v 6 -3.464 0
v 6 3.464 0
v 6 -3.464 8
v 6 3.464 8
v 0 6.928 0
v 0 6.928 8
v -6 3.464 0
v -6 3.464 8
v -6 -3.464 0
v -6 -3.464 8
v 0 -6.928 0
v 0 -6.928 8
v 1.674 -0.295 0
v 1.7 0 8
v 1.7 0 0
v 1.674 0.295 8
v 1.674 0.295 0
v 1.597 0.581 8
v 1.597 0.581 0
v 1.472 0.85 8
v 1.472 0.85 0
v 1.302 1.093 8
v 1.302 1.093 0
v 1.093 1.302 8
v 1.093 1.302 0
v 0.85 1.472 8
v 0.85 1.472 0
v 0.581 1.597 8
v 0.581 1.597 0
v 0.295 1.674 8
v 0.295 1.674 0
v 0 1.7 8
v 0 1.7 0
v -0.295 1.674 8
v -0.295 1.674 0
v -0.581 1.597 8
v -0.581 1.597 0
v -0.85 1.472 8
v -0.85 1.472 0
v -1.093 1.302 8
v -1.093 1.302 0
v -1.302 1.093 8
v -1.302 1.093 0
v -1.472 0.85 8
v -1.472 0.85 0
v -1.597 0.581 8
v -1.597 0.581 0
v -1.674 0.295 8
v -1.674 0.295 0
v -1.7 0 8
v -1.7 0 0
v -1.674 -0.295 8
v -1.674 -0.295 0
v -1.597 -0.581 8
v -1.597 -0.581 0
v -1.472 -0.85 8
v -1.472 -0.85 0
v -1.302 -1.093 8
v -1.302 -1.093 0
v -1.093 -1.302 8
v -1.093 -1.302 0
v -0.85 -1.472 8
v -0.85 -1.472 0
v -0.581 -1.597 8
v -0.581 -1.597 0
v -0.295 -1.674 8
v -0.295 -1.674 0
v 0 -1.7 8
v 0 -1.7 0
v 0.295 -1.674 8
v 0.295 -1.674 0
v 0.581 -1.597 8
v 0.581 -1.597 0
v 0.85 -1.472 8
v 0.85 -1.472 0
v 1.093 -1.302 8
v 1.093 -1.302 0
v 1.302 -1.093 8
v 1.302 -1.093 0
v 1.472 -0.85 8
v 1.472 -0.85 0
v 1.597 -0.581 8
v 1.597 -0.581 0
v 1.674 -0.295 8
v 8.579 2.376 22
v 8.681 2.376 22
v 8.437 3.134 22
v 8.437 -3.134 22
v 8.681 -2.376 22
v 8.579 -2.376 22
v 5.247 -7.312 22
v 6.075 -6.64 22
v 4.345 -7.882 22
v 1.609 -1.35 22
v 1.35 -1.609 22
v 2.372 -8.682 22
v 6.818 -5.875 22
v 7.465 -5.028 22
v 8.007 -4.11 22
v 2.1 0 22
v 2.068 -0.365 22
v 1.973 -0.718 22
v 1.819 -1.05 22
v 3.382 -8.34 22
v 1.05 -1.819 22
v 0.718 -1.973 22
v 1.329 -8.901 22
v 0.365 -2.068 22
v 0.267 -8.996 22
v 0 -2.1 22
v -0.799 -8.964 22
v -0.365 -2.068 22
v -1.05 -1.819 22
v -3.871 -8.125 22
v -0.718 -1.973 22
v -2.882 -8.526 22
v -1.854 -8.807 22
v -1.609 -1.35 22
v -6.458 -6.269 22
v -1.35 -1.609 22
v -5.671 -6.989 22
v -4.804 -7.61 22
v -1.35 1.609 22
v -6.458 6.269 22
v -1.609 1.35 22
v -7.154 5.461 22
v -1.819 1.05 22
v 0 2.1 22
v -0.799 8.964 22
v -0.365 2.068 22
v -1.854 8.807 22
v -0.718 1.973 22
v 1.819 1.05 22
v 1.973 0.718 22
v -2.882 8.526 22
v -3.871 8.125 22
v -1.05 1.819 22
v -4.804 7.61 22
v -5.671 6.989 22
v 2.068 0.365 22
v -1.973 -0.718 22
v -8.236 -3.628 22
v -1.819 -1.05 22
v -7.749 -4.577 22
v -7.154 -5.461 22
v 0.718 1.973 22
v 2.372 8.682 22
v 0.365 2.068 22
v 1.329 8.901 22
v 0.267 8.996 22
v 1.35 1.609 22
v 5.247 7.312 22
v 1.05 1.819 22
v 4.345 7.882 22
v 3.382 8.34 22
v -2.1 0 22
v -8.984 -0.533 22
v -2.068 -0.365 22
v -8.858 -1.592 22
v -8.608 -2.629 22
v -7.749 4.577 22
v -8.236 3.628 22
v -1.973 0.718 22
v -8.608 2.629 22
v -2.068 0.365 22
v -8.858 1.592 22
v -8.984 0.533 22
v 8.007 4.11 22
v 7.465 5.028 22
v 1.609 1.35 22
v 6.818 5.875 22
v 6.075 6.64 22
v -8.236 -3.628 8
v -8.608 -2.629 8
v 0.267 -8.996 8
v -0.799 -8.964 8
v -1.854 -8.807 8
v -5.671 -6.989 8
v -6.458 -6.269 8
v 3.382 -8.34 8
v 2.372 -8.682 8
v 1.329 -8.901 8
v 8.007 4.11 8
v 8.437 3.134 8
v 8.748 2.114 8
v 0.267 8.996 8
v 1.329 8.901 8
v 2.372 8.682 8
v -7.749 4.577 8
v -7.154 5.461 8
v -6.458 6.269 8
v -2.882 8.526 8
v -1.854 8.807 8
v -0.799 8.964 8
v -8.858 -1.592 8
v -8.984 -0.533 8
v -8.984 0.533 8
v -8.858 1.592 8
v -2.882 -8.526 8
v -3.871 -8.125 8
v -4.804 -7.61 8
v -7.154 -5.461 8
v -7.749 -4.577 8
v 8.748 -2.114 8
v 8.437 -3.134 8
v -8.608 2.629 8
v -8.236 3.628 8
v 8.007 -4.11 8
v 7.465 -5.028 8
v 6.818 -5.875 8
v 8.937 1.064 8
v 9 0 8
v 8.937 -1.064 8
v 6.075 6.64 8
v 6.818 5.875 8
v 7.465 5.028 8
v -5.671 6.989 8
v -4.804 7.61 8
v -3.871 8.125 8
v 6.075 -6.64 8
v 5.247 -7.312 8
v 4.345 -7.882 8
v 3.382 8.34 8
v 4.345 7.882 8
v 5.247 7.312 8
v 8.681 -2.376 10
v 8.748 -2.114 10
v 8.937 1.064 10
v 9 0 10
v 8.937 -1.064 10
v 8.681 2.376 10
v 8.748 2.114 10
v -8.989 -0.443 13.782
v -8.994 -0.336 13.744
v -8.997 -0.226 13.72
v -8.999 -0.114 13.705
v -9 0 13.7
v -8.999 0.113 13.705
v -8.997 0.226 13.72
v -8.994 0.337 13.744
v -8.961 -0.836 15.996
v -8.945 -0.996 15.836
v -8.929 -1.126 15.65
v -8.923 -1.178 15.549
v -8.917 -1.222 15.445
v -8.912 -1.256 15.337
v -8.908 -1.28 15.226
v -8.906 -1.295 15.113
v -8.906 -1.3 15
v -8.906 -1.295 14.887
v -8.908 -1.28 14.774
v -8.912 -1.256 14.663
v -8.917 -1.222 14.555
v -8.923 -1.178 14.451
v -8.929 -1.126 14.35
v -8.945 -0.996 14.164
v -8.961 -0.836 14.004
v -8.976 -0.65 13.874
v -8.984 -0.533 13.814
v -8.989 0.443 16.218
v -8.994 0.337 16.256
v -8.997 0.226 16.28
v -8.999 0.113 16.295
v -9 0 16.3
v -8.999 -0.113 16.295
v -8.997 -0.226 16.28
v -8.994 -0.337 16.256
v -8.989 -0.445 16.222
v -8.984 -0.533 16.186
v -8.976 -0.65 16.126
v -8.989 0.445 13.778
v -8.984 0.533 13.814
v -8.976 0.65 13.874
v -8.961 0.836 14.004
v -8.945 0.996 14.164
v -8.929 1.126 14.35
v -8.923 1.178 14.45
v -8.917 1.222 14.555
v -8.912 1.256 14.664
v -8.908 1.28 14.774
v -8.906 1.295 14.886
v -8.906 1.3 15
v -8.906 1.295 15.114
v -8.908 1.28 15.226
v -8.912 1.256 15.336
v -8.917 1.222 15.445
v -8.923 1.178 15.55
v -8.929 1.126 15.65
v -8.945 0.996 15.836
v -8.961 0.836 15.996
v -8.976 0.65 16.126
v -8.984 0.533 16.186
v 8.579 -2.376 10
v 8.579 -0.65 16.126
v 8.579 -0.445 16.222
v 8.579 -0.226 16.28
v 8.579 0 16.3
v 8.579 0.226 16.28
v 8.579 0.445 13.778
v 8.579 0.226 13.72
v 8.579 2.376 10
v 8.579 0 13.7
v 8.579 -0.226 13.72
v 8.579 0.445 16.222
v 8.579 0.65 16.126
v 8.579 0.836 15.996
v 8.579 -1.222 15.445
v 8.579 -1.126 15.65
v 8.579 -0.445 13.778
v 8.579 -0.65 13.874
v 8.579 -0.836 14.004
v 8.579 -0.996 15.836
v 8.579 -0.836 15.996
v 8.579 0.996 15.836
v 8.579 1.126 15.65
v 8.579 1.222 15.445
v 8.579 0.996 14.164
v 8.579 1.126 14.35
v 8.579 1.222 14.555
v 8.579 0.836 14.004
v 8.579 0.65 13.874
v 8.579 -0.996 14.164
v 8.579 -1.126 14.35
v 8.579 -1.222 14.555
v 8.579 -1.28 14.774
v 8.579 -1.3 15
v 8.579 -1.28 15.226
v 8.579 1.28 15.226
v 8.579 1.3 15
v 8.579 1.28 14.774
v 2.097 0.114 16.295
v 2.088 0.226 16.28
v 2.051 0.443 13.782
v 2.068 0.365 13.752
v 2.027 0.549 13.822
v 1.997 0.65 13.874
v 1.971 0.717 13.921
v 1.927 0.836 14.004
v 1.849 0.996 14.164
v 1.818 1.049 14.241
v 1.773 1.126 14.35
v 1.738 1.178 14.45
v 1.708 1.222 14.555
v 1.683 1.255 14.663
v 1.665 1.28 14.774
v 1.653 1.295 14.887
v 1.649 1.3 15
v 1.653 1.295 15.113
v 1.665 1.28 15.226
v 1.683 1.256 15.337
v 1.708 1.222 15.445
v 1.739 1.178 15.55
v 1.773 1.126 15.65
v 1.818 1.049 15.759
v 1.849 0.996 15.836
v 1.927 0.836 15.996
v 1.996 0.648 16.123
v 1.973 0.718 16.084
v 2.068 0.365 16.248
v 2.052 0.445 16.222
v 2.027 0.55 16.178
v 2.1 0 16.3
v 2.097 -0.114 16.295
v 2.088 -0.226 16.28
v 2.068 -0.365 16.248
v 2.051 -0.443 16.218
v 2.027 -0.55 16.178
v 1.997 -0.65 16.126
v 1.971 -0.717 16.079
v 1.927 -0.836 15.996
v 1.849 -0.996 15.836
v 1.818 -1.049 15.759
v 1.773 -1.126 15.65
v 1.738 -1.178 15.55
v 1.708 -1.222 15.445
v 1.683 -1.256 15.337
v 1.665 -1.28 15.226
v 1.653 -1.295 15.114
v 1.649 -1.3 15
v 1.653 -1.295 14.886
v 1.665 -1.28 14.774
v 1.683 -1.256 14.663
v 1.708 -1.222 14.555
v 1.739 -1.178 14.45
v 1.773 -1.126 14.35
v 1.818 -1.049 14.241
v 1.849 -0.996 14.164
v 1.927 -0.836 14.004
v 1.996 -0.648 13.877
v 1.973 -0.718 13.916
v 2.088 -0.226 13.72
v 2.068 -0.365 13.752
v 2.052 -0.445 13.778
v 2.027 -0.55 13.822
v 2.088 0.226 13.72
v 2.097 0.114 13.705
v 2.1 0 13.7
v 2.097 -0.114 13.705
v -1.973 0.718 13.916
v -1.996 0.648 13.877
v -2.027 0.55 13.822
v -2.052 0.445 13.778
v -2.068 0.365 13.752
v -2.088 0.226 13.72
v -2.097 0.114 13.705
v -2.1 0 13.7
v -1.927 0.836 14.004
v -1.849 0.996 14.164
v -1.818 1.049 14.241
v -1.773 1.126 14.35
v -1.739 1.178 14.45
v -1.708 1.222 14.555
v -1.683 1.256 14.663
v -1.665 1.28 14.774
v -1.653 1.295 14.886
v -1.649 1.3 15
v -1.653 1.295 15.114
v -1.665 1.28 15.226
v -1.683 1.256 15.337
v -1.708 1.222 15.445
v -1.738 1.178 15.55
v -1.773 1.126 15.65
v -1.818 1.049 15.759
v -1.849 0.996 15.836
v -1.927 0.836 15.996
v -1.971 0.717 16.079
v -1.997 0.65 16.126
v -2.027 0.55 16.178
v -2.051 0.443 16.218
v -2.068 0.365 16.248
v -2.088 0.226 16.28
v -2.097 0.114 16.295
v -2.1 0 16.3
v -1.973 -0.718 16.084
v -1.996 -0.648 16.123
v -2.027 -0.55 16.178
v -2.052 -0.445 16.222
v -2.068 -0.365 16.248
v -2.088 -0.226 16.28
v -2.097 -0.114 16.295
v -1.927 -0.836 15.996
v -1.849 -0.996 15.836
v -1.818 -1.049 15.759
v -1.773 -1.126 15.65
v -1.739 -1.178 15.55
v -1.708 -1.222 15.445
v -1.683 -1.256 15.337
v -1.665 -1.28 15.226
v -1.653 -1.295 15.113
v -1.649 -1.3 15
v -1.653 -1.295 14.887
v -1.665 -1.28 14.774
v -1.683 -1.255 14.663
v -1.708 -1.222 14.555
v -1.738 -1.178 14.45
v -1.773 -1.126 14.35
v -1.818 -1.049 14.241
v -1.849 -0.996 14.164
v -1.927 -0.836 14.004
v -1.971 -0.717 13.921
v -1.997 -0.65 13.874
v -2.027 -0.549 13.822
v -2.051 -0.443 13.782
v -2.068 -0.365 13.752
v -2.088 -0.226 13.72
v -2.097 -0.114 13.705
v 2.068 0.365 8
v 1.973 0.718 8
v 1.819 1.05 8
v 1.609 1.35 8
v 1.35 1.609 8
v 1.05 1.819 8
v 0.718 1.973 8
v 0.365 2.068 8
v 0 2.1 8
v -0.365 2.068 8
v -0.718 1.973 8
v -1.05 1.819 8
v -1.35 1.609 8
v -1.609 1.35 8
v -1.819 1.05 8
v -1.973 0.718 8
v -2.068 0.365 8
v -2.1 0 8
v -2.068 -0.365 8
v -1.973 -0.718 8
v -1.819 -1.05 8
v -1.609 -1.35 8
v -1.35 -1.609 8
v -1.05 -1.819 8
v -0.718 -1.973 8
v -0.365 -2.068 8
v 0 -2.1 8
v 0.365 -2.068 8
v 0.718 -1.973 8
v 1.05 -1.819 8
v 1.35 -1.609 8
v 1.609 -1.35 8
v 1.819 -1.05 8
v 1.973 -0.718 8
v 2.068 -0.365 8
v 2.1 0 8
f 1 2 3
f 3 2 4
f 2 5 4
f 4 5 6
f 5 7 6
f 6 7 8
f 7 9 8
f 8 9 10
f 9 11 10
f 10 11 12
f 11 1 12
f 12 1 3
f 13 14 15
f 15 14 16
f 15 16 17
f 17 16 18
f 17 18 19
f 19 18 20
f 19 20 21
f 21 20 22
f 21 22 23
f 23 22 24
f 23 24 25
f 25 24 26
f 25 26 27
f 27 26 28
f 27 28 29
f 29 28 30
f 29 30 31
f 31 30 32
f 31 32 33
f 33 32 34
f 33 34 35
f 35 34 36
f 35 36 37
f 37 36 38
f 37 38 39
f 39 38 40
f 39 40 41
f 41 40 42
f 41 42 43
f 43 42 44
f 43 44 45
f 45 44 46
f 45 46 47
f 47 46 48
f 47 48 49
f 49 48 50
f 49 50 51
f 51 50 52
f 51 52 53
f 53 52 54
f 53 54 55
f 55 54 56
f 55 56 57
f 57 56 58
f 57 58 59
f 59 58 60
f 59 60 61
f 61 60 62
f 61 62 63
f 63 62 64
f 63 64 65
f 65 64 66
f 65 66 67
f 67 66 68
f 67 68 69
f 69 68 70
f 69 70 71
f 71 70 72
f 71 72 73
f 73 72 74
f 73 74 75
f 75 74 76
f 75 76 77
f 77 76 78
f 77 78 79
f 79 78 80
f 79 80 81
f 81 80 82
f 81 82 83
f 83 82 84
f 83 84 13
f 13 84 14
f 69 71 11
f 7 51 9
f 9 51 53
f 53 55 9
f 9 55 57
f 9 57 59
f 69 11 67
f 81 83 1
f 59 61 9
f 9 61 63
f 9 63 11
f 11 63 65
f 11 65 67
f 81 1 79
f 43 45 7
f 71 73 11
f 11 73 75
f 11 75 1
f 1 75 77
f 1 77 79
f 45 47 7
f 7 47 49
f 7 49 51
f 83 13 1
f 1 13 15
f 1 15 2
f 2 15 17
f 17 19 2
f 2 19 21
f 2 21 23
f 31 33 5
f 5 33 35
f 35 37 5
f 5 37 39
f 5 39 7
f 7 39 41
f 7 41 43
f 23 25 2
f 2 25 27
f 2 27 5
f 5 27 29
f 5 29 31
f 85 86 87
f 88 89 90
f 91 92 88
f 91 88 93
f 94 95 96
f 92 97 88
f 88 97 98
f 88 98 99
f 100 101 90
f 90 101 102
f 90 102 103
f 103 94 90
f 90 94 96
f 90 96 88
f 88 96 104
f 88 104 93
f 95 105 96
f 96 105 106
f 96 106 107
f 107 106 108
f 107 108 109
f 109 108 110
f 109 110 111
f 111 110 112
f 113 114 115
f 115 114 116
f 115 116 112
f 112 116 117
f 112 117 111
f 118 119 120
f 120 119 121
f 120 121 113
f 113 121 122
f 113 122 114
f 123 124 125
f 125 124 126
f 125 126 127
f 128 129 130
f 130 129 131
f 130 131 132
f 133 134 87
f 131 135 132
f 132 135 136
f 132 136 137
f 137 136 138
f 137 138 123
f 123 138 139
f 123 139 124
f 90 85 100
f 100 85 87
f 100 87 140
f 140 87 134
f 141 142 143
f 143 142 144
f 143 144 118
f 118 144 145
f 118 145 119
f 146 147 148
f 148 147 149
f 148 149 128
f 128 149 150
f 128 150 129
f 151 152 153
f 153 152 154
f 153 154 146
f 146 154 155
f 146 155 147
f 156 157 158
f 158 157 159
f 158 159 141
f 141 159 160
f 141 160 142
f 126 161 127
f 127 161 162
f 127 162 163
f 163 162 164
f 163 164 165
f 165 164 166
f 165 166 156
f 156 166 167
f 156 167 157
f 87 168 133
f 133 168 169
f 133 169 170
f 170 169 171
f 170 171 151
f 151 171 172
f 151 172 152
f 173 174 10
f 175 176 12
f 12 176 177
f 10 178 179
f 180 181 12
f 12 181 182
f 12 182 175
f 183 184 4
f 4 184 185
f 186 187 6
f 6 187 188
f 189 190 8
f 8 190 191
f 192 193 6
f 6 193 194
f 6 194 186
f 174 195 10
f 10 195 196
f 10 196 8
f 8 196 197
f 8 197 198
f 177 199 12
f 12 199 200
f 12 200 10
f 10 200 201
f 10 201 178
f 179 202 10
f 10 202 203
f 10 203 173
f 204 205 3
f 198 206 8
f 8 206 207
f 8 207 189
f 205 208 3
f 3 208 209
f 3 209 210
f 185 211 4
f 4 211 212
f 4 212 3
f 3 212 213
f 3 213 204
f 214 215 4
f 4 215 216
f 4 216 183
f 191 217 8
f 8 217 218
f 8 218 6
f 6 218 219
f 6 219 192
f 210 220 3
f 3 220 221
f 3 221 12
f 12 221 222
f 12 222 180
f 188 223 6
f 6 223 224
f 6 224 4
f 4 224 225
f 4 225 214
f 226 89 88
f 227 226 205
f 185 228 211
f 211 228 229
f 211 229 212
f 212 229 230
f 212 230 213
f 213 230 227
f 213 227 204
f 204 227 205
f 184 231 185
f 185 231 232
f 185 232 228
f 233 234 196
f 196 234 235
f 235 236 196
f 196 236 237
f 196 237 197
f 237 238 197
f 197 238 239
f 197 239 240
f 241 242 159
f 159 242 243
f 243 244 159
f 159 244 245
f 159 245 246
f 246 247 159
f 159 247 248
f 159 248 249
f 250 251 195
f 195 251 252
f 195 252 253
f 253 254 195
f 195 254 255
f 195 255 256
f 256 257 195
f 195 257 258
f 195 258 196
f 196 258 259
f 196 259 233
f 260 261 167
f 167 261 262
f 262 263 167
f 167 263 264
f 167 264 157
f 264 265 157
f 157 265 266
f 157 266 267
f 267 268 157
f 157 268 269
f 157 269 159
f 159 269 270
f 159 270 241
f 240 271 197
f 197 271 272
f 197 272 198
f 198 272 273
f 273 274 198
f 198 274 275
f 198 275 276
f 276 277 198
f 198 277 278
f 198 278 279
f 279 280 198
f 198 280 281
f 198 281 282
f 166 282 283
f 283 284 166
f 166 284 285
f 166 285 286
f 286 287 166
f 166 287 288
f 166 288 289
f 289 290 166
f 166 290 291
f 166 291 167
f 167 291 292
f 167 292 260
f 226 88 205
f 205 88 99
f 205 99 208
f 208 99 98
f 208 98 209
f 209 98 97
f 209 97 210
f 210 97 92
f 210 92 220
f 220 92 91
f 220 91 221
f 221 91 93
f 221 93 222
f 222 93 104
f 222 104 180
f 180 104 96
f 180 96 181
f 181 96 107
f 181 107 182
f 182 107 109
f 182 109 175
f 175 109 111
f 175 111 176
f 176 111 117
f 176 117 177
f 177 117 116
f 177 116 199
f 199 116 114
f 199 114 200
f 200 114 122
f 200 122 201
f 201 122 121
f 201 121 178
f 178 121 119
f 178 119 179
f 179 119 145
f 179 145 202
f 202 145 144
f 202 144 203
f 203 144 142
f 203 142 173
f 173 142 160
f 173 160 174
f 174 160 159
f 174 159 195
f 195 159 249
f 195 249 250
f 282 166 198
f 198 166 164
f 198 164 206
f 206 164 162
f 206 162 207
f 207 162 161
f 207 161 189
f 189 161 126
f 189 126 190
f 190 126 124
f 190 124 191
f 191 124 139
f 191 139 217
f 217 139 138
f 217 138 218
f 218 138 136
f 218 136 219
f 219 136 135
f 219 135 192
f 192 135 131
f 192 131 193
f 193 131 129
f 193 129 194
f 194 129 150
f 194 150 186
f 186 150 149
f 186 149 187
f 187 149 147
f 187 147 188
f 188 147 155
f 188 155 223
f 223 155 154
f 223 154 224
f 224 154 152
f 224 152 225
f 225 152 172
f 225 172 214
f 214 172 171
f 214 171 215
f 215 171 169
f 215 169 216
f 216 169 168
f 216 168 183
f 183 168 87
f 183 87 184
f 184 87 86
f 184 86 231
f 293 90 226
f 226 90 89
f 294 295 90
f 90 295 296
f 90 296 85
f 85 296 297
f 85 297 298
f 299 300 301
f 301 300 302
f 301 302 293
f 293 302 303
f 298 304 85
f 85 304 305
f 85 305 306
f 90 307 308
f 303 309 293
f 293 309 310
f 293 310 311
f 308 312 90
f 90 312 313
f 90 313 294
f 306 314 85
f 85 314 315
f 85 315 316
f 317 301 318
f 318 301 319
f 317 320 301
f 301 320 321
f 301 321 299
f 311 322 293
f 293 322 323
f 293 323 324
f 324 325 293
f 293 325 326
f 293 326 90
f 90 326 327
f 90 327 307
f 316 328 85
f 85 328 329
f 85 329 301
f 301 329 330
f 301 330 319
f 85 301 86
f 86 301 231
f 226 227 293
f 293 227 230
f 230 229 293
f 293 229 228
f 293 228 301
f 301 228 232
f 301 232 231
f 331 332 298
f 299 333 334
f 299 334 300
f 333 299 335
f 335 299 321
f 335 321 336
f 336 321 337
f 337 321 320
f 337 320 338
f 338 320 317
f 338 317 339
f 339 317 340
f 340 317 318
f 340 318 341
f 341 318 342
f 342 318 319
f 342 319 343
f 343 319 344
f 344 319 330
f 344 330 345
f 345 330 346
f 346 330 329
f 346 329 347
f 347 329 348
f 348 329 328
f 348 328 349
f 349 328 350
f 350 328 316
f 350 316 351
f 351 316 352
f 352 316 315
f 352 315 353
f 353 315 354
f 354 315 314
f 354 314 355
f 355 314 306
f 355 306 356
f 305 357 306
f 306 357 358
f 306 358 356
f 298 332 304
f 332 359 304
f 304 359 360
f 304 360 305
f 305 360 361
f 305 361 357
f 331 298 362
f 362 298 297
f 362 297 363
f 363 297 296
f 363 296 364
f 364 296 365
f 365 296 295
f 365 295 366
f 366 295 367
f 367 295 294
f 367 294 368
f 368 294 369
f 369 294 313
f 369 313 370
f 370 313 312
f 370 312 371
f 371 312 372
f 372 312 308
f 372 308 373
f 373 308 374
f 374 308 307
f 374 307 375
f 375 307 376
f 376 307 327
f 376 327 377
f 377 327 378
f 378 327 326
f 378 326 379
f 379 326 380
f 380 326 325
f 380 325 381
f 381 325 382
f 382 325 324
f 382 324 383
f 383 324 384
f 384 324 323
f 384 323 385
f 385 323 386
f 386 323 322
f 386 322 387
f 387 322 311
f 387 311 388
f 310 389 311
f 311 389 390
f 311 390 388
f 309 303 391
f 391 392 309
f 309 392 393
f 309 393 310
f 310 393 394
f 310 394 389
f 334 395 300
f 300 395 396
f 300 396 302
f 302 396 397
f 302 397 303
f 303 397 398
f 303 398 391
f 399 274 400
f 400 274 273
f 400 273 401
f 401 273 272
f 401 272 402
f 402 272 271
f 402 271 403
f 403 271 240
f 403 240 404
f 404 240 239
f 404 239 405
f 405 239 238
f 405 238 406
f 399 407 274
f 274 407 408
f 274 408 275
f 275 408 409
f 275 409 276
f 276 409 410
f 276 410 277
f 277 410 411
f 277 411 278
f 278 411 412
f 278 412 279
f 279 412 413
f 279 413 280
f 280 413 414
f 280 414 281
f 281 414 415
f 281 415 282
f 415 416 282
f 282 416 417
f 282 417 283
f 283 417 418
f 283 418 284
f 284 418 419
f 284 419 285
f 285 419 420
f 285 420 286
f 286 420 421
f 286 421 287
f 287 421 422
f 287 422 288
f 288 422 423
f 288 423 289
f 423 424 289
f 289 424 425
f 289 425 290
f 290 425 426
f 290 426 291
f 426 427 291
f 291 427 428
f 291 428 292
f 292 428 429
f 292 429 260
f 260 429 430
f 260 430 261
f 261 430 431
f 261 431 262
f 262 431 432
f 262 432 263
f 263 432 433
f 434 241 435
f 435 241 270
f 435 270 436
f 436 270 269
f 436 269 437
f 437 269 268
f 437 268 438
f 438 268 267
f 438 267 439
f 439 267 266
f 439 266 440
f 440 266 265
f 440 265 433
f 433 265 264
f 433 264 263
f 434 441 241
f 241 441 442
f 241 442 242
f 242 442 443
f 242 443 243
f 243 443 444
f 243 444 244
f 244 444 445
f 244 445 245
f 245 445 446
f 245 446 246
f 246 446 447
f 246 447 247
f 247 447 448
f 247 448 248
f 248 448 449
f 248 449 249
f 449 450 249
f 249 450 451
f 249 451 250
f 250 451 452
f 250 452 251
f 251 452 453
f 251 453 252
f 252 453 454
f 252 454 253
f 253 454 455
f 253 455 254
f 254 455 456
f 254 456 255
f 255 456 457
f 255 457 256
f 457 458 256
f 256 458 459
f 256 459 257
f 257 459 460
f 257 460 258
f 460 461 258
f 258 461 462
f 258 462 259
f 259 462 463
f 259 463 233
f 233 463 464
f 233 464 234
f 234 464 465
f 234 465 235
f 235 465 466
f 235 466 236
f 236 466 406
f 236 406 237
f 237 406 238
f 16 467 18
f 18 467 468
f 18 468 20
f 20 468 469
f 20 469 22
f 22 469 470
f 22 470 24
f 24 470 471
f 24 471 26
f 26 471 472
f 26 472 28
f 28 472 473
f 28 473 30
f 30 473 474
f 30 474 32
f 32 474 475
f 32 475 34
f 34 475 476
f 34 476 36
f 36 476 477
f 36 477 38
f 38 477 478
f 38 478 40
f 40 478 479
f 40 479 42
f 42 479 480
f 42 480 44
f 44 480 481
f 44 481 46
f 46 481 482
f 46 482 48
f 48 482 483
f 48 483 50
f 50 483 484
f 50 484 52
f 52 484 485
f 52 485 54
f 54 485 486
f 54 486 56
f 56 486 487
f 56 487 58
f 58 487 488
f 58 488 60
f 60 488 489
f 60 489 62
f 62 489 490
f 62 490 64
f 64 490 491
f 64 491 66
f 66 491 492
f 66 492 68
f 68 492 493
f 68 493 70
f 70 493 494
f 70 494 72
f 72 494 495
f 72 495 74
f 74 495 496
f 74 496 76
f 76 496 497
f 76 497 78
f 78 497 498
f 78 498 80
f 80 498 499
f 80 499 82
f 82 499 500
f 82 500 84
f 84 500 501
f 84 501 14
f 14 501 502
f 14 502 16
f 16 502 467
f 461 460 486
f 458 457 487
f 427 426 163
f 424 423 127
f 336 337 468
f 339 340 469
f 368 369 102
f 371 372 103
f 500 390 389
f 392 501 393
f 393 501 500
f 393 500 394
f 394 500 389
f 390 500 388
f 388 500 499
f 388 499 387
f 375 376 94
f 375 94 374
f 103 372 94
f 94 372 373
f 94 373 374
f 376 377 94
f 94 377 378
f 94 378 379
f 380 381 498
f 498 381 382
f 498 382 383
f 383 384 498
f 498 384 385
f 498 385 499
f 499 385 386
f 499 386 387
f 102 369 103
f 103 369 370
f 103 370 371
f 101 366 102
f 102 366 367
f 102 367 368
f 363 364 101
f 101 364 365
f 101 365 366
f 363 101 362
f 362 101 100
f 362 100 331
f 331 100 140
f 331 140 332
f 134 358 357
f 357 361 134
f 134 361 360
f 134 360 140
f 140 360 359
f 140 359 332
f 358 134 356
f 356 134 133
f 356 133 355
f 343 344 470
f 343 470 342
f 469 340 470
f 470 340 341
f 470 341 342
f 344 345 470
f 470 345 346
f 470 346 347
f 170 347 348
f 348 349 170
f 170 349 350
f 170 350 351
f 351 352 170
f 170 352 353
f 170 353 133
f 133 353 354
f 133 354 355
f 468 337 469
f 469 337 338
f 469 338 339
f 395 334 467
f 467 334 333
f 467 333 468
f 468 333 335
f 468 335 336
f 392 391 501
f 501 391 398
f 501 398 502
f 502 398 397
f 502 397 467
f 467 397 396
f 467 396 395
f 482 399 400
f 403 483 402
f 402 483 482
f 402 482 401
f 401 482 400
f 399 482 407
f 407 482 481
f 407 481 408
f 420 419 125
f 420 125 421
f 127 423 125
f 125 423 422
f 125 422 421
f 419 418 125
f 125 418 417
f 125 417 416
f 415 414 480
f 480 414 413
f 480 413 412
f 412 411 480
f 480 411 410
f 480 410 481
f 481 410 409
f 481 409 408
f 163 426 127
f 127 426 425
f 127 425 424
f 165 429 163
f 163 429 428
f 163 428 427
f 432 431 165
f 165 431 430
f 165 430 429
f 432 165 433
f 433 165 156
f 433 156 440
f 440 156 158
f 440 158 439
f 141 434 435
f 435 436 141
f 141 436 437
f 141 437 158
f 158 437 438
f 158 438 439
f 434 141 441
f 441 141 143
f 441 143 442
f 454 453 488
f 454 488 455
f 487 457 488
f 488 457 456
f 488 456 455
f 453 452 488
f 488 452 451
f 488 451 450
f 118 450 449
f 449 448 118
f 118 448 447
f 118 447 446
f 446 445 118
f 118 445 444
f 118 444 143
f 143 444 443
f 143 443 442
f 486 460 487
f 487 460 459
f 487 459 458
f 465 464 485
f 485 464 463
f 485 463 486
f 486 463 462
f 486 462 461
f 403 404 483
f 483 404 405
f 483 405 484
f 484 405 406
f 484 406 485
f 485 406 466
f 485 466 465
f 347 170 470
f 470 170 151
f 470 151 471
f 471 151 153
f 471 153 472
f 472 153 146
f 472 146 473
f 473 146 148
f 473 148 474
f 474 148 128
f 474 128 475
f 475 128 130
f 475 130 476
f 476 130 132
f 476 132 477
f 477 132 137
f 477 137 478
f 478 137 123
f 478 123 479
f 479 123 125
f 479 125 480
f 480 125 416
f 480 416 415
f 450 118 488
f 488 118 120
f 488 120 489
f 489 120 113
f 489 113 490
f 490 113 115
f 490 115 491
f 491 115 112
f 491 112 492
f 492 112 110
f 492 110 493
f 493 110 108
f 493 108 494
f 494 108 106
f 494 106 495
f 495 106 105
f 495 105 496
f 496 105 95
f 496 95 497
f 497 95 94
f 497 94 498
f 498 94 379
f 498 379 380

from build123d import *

# Parameters (mm, degrees)
BOSS_EXTRU_1_DEPTH      = 22
ESQUISSE2_R             = 1.7
ENL_V_MAT_EXTRU_1_DEPTH = 23
ESQUISSE3_R             = 9
ESQUISSE3_R_2           = 1.3
BOSS_EXTRU_2_DEPTH      = 14
ESQUISSE4_W             = 0.84262724
ESQUISSE4_H             = 4.751474998
ENL_V_MAT_EXTRU_2_DEPTH = 12
ESQUISSE5_R             = 1.3
ENL_V_MAT_EXTRU_3_DEPTH = 27
ESQUISSE6_R             = 2.1
ENL_V_MAT_EXTRU_4_DEPTH = 14


with BuildPart() as part:
    # Esquisse1 → Boss.-Extru.1 (new body)
    with BuildSketch(Plane.XY):
        Polygon((6, 3.464101615), (0, 6.92820323), (-6, 3.464101615), (-6, -3.464101615), (0, -6.92820323), (6, -3.464101615), align=None)
    extrude(amount=BOSS_EXTRU_1_DEPTH)

    # Esquisse2 → Enlèv. mat.-Extru.1 (cut)
    with BuildSketch(Plane.XY.offset(22)):
        Circle(ESQUISSE2_R)
    extrude(amount=-ENL_V_MAT_EXTRU_1_DEPTH, mode=Mode.SUBTRACT)

    # Esquisse3 → Boss.-Extru.2 (add)
    with BuildSketch(Plane.XY.offset(22)):
        Circle(ESQUISSE3_R)
        Circle(ESQUISSE3_R_2, mode=Mode.SUBTRACT)
    extrude(amount=-BOSS_EXTRU_2_DEPTH)

    # Esquisse4 → Enlèv. mat.-Extru.2 (cut)
    with BuildSketch(Plane.XY.offset(22)):
        with Locations((9, 0)):
            Rectangle(ESQUISSE4_W, ESQUISSE4_H)
    extrude(amount=-ENL_V_MAT_EXTRU_2_DEPTH, mode=Mode.SUBTRACT)

    # Esquisse5 → Enlèv. mat.-Extru.3 (cut)
    with BuildSketch(Plane(origin=(8.57868638, 0, 0), x_dir=(0, 0, -1), z_dir=(1, 0, 0))):
        with Locations((-15, 0)):
            Circle(ESQUISSE5_R)
    extrude(amount=-ENL_V_MAT_EXTRU_3_DEPTH, mode=Mode.SUBTRACT)

    # Esquisse6 → Enlèv. mat.-Extru.4 (cut)
    with BuildSketch(Plane.XY.offset(22)):
        Circle(ESQUISSE6_R)
    extrude(amount=-ENL_V_MAT_EXTRU_4_DEPTH, mode=Mode.SUBTRACT)


solid = part.part
